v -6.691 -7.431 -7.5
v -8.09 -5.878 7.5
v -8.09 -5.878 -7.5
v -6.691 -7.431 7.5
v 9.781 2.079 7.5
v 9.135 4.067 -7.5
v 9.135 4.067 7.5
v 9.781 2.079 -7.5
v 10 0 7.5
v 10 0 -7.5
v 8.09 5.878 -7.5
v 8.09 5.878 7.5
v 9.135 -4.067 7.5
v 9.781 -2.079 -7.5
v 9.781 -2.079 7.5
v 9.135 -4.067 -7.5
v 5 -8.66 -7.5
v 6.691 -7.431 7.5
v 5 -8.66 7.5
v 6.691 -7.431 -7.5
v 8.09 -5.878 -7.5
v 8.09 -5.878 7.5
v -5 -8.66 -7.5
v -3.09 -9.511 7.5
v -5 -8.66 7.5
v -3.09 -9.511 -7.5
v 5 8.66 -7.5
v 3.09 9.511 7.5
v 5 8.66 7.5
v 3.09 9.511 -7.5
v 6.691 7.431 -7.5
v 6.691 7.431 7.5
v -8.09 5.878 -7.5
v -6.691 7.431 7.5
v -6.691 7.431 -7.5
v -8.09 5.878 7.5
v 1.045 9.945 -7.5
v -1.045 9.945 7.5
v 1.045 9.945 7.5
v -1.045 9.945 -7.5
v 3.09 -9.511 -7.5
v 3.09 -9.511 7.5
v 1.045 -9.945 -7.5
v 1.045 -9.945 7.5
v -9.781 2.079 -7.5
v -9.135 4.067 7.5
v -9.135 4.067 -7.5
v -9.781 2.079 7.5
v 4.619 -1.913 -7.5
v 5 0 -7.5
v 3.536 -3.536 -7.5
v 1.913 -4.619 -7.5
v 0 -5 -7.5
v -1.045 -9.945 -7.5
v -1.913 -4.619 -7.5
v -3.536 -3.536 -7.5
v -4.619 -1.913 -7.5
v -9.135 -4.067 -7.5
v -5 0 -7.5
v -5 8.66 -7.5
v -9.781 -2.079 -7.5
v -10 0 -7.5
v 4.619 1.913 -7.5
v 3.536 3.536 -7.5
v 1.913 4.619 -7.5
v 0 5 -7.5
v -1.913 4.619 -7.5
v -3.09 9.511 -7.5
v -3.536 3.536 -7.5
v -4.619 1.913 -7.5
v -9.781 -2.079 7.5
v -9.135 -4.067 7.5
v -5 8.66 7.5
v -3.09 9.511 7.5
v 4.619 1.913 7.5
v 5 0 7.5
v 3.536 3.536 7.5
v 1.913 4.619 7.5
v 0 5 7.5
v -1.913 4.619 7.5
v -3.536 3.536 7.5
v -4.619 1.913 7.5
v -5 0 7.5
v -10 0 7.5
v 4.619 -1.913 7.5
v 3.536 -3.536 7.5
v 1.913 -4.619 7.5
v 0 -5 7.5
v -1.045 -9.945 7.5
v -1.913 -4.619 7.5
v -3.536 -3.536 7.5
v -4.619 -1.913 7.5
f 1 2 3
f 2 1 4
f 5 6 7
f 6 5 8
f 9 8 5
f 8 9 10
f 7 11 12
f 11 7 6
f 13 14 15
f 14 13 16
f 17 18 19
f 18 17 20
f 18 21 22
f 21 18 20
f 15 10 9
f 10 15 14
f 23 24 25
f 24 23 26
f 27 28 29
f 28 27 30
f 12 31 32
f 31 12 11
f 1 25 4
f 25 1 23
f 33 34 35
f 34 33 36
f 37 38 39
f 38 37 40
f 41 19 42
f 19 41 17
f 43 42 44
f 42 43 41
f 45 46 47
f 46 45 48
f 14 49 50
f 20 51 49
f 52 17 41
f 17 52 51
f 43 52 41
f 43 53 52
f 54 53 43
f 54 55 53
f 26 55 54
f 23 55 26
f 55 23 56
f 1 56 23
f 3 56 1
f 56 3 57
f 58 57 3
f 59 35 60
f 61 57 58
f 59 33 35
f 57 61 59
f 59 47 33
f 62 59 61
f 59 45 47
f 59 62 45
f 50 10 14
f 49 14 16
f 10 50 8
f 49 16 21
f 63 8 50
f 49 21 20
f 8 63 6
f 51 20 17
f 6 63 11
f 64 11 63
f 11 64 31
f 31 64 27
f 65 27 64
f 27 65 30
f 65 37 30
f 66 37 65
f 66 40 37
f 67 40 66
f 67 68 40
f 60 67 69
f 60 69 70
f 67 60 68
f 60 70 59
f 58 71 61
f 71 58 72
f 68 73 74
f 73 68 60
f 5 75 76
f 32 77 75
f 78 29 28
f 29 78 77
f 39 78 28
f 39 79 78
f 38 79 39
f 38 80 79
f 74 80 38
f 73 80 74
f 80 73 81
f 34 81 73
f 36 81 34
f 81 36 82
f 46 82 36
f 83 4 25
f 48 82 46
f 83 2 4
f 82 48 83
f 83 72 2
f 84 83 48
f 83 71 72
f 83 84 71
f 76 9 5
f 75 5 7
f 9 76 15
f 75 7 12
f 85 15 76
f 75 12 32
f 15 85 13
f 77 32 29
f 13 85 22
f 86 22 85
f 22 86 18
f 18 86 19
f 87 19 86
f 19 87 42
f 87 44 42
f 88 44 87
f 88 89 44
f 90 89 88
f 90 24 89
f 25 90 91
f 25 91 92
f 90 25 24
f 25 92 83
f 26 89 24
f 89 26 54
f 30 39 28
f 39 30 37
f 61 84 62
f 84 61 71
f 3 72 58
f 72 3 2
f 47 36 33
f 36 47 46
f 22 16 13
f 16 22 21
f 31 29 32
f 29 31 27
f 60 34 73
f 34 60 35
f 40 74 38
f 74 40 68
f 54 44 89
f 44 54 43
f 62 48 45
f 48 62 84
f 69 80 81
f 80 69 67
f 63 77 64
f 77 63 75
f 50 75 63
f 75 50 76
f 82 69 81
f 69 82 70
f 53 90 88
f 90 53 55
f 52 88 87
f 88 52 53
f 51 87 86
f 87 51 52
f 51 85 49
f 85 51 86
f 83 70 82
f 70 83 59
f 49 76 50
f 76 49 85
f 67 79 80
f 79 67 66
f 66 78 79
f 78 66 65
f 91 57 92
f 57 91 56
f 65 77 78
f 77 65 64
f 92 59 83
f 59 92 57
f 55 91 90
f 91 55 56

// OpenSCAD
// Parameters for the cylindrical component
cylinder_outer_diameter = 20; // Outer diameter of the cylinder
cylinder_height = 15;        // Height of the cylinder (reduced to match the original model)
cylinder_inner_diameter = 10; // Inner diameter (hollow center)

// Function to create the cylindrical component
module cylindrical_component() {
    difference() {
        // Outer cylinder with uniform diameter (no tapering)
        cylinder(d=cylinder_outer_diameter, h=cylinder_height, center=true);
        // Inner hollow cylinder
        cylinder(d=cylinder_inner_diameter, h=cylinder_height + 1, center=true);
    }
}

// Assembly of the model
translate([0, 0, 0]) {
    cylindrical_component();
}
